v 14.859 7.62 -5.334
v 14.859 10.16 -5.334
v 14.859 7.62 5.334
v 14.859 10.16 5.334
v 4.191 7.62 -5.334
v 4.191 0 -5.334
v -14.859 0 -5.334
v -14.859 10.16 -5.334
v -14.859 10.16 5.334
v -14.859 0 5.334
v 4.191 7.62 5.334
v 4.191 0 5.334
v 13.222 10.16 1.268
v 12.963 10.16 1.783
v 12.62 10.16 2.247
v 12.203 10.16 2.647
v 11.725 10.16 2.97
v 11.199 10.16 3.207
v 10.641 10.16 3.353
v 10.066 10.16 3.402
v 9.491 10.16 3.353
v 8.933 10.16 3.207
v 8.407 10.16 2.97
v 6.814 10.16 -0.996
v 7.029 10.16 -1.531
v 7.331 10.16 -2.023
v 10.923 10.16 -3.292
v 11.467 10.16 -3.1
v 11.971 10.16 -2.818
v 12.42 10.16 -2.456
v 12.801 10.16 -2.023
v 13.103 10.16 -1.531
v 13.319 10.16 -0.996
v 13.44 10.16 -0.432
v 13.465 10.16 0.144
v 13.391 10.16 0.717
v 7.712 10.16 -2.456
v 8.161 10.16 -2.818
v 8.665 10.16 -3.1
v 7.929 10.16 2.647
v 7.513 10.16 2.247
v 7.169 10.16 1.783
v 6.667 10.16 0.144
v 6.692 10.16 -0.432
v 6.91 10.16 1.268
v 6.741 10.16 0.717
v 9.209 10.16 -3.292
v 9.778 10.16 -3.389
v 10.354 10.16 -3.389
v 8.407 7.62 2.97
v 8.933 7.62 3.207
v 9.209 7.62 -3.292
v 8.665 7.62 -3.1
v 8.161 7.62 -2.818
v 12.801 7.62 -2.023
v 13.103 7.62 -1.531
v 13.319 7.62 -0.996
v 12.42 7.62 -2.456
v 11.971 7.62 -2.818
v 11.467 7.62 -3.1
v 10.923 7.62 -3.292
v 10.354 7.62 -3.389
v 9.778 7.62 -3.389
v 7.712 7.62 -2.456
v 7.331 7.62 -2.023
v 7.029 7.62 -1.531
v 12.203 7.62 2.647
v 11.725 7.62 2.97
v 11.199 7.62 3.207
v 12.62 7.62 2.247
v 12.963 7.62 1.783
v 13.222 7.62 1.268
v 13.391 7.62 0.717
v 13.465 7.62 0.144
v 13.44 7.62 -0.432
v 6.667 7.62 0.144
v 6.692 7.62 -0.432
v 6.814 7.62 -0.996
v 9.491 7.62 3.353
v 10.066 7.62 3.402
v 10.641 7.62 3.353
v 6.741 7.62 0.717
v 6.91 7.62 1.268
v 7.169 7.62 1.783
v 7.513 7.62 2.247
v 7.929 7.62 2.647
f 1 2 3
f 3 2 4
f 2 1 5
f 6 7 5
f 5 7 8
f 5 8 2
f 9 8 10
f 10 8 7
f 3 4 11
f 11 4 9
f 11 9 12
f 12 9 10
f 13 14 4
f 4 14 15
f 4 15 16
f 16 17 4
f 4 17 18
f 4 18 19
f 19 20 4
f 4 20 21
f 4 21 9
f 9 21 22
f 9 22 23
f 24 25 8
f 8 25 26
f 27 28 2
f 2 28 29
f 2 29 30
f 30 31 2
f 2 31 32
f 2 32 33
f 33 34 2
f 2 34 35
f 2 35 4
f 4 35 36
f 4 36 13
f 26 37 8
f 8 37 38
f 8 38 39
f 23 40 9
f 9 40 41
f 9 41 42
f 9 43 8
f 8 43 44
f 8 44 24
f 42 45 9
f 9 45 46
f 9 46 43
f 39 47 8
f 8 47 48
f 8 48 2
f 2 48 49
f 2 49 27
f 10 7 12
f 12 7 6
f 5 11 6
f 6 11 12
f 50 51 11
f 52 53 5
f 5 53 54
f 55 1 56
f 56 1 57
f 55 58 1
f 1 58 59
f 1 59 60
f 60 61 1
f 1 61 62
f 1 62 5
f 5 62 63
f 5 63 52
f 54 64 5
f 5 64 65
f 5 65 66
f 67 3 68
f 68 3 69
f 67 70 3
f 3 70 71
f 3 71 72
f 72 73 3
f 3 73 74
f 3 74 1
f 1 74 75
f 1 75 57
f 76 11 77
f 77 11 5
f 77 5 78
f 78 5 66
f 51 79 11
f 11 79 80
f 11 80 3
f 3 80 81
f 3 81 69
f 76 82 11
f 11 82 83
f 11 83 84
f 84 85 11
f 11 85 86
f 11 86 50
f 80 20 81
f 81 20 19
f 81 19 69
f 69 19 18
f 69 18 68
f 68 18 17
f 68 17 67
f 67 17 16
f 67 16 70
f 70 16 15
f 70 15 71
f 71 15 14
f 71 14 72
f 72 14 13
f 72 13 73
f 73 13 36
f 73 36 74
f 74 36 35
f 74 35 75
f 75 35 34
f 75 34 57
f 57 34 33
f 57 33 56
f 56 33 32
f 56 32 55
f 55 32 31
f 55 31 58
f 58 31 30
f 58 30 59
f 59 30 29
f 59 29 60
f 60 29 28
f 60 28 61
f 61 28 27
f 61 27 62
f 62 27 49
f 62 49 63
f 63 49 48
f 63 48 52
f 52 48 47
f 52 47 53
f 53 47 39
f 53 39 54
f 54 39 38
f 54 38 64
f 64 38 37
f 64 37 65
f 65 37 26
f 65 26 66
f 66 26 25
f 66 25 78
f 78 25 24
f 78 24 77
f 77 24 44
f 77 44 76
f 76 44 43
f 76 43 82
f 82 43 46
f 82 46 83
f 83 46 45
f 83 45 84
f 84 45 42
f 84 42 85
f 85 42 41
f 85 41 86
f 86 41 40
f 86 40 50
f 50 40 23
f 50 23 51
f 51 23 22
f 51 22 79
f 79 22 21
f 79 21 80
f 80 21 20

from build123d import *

# Parameters (mm, degrees)
SKETCH1_W                = 29.718
SKETCH1_H                = 10.668
BOSS_EXTRUDE1_DEPTH      = 10.16
SKETCH2_W                = 10.668
SKETCH2_H                = 10.668
CUT_EXTRUDE1_DEPTH       = 7.62
M6_CLEARANCE_HOLE1_D     = 6.8032
M6_CLEARANCE_HOLE1_DEPTH = 32.4993
M6_CLEARANCE_HOLE1_TIP   = 2.043887482


with BuildPart() as part:
    # Sketch1 → Boss-Extrude1 (new body)
    with BuildSketch(Plane(origin=(0, 0, 0), x_dir=(1, 0, 0), z_dir=(0, 1, 0))):
        Rectangle(SKETCH1_W, SKETCH1_H)
    extrude(amount=BOSS_EXTRUDE1_DEPTH)

    # Sketch2 → Cut-Extrude1 (cut)
    with BuildSketch(Plane(origin=(0, 0, 0), x_dir=(-1, 0, 0), z_dir=(0, -1, 0))):
        with Locations((-9.525, 0)):
            Rectangle(SKETCH2_W, SKETCH2_H)
    extrude(amount=-CUT_EXTRUDE1_DEPTH, mode=Mode.SUBTRACT)

    # M6 Clearance Hole1
    with Locations(Plane(origin=(0, 10.16, 0), x_dir=(1, 0, 0), z_dir=(0, 1, 0))):
        with Locations((10.06602, 0)):
            Hole(M6_CLEARANCE_HOLE1_D / 2, depth=M6_CLEARANCE_HOLE1_DEPTH)
            with Locations((0, 0, -(M6_CLEARANCE_HOLE1_DEPTH + M6_CLEARANCE_HOLE1_TIP / 2))):  # 118° drill point
                Cone(0, M6_CLEARANCE_HOLE1_D / 2, M6_CLEARANCE_HOLE1_TIP, mode=Mode.SUBTRACT)


solid = part.part
